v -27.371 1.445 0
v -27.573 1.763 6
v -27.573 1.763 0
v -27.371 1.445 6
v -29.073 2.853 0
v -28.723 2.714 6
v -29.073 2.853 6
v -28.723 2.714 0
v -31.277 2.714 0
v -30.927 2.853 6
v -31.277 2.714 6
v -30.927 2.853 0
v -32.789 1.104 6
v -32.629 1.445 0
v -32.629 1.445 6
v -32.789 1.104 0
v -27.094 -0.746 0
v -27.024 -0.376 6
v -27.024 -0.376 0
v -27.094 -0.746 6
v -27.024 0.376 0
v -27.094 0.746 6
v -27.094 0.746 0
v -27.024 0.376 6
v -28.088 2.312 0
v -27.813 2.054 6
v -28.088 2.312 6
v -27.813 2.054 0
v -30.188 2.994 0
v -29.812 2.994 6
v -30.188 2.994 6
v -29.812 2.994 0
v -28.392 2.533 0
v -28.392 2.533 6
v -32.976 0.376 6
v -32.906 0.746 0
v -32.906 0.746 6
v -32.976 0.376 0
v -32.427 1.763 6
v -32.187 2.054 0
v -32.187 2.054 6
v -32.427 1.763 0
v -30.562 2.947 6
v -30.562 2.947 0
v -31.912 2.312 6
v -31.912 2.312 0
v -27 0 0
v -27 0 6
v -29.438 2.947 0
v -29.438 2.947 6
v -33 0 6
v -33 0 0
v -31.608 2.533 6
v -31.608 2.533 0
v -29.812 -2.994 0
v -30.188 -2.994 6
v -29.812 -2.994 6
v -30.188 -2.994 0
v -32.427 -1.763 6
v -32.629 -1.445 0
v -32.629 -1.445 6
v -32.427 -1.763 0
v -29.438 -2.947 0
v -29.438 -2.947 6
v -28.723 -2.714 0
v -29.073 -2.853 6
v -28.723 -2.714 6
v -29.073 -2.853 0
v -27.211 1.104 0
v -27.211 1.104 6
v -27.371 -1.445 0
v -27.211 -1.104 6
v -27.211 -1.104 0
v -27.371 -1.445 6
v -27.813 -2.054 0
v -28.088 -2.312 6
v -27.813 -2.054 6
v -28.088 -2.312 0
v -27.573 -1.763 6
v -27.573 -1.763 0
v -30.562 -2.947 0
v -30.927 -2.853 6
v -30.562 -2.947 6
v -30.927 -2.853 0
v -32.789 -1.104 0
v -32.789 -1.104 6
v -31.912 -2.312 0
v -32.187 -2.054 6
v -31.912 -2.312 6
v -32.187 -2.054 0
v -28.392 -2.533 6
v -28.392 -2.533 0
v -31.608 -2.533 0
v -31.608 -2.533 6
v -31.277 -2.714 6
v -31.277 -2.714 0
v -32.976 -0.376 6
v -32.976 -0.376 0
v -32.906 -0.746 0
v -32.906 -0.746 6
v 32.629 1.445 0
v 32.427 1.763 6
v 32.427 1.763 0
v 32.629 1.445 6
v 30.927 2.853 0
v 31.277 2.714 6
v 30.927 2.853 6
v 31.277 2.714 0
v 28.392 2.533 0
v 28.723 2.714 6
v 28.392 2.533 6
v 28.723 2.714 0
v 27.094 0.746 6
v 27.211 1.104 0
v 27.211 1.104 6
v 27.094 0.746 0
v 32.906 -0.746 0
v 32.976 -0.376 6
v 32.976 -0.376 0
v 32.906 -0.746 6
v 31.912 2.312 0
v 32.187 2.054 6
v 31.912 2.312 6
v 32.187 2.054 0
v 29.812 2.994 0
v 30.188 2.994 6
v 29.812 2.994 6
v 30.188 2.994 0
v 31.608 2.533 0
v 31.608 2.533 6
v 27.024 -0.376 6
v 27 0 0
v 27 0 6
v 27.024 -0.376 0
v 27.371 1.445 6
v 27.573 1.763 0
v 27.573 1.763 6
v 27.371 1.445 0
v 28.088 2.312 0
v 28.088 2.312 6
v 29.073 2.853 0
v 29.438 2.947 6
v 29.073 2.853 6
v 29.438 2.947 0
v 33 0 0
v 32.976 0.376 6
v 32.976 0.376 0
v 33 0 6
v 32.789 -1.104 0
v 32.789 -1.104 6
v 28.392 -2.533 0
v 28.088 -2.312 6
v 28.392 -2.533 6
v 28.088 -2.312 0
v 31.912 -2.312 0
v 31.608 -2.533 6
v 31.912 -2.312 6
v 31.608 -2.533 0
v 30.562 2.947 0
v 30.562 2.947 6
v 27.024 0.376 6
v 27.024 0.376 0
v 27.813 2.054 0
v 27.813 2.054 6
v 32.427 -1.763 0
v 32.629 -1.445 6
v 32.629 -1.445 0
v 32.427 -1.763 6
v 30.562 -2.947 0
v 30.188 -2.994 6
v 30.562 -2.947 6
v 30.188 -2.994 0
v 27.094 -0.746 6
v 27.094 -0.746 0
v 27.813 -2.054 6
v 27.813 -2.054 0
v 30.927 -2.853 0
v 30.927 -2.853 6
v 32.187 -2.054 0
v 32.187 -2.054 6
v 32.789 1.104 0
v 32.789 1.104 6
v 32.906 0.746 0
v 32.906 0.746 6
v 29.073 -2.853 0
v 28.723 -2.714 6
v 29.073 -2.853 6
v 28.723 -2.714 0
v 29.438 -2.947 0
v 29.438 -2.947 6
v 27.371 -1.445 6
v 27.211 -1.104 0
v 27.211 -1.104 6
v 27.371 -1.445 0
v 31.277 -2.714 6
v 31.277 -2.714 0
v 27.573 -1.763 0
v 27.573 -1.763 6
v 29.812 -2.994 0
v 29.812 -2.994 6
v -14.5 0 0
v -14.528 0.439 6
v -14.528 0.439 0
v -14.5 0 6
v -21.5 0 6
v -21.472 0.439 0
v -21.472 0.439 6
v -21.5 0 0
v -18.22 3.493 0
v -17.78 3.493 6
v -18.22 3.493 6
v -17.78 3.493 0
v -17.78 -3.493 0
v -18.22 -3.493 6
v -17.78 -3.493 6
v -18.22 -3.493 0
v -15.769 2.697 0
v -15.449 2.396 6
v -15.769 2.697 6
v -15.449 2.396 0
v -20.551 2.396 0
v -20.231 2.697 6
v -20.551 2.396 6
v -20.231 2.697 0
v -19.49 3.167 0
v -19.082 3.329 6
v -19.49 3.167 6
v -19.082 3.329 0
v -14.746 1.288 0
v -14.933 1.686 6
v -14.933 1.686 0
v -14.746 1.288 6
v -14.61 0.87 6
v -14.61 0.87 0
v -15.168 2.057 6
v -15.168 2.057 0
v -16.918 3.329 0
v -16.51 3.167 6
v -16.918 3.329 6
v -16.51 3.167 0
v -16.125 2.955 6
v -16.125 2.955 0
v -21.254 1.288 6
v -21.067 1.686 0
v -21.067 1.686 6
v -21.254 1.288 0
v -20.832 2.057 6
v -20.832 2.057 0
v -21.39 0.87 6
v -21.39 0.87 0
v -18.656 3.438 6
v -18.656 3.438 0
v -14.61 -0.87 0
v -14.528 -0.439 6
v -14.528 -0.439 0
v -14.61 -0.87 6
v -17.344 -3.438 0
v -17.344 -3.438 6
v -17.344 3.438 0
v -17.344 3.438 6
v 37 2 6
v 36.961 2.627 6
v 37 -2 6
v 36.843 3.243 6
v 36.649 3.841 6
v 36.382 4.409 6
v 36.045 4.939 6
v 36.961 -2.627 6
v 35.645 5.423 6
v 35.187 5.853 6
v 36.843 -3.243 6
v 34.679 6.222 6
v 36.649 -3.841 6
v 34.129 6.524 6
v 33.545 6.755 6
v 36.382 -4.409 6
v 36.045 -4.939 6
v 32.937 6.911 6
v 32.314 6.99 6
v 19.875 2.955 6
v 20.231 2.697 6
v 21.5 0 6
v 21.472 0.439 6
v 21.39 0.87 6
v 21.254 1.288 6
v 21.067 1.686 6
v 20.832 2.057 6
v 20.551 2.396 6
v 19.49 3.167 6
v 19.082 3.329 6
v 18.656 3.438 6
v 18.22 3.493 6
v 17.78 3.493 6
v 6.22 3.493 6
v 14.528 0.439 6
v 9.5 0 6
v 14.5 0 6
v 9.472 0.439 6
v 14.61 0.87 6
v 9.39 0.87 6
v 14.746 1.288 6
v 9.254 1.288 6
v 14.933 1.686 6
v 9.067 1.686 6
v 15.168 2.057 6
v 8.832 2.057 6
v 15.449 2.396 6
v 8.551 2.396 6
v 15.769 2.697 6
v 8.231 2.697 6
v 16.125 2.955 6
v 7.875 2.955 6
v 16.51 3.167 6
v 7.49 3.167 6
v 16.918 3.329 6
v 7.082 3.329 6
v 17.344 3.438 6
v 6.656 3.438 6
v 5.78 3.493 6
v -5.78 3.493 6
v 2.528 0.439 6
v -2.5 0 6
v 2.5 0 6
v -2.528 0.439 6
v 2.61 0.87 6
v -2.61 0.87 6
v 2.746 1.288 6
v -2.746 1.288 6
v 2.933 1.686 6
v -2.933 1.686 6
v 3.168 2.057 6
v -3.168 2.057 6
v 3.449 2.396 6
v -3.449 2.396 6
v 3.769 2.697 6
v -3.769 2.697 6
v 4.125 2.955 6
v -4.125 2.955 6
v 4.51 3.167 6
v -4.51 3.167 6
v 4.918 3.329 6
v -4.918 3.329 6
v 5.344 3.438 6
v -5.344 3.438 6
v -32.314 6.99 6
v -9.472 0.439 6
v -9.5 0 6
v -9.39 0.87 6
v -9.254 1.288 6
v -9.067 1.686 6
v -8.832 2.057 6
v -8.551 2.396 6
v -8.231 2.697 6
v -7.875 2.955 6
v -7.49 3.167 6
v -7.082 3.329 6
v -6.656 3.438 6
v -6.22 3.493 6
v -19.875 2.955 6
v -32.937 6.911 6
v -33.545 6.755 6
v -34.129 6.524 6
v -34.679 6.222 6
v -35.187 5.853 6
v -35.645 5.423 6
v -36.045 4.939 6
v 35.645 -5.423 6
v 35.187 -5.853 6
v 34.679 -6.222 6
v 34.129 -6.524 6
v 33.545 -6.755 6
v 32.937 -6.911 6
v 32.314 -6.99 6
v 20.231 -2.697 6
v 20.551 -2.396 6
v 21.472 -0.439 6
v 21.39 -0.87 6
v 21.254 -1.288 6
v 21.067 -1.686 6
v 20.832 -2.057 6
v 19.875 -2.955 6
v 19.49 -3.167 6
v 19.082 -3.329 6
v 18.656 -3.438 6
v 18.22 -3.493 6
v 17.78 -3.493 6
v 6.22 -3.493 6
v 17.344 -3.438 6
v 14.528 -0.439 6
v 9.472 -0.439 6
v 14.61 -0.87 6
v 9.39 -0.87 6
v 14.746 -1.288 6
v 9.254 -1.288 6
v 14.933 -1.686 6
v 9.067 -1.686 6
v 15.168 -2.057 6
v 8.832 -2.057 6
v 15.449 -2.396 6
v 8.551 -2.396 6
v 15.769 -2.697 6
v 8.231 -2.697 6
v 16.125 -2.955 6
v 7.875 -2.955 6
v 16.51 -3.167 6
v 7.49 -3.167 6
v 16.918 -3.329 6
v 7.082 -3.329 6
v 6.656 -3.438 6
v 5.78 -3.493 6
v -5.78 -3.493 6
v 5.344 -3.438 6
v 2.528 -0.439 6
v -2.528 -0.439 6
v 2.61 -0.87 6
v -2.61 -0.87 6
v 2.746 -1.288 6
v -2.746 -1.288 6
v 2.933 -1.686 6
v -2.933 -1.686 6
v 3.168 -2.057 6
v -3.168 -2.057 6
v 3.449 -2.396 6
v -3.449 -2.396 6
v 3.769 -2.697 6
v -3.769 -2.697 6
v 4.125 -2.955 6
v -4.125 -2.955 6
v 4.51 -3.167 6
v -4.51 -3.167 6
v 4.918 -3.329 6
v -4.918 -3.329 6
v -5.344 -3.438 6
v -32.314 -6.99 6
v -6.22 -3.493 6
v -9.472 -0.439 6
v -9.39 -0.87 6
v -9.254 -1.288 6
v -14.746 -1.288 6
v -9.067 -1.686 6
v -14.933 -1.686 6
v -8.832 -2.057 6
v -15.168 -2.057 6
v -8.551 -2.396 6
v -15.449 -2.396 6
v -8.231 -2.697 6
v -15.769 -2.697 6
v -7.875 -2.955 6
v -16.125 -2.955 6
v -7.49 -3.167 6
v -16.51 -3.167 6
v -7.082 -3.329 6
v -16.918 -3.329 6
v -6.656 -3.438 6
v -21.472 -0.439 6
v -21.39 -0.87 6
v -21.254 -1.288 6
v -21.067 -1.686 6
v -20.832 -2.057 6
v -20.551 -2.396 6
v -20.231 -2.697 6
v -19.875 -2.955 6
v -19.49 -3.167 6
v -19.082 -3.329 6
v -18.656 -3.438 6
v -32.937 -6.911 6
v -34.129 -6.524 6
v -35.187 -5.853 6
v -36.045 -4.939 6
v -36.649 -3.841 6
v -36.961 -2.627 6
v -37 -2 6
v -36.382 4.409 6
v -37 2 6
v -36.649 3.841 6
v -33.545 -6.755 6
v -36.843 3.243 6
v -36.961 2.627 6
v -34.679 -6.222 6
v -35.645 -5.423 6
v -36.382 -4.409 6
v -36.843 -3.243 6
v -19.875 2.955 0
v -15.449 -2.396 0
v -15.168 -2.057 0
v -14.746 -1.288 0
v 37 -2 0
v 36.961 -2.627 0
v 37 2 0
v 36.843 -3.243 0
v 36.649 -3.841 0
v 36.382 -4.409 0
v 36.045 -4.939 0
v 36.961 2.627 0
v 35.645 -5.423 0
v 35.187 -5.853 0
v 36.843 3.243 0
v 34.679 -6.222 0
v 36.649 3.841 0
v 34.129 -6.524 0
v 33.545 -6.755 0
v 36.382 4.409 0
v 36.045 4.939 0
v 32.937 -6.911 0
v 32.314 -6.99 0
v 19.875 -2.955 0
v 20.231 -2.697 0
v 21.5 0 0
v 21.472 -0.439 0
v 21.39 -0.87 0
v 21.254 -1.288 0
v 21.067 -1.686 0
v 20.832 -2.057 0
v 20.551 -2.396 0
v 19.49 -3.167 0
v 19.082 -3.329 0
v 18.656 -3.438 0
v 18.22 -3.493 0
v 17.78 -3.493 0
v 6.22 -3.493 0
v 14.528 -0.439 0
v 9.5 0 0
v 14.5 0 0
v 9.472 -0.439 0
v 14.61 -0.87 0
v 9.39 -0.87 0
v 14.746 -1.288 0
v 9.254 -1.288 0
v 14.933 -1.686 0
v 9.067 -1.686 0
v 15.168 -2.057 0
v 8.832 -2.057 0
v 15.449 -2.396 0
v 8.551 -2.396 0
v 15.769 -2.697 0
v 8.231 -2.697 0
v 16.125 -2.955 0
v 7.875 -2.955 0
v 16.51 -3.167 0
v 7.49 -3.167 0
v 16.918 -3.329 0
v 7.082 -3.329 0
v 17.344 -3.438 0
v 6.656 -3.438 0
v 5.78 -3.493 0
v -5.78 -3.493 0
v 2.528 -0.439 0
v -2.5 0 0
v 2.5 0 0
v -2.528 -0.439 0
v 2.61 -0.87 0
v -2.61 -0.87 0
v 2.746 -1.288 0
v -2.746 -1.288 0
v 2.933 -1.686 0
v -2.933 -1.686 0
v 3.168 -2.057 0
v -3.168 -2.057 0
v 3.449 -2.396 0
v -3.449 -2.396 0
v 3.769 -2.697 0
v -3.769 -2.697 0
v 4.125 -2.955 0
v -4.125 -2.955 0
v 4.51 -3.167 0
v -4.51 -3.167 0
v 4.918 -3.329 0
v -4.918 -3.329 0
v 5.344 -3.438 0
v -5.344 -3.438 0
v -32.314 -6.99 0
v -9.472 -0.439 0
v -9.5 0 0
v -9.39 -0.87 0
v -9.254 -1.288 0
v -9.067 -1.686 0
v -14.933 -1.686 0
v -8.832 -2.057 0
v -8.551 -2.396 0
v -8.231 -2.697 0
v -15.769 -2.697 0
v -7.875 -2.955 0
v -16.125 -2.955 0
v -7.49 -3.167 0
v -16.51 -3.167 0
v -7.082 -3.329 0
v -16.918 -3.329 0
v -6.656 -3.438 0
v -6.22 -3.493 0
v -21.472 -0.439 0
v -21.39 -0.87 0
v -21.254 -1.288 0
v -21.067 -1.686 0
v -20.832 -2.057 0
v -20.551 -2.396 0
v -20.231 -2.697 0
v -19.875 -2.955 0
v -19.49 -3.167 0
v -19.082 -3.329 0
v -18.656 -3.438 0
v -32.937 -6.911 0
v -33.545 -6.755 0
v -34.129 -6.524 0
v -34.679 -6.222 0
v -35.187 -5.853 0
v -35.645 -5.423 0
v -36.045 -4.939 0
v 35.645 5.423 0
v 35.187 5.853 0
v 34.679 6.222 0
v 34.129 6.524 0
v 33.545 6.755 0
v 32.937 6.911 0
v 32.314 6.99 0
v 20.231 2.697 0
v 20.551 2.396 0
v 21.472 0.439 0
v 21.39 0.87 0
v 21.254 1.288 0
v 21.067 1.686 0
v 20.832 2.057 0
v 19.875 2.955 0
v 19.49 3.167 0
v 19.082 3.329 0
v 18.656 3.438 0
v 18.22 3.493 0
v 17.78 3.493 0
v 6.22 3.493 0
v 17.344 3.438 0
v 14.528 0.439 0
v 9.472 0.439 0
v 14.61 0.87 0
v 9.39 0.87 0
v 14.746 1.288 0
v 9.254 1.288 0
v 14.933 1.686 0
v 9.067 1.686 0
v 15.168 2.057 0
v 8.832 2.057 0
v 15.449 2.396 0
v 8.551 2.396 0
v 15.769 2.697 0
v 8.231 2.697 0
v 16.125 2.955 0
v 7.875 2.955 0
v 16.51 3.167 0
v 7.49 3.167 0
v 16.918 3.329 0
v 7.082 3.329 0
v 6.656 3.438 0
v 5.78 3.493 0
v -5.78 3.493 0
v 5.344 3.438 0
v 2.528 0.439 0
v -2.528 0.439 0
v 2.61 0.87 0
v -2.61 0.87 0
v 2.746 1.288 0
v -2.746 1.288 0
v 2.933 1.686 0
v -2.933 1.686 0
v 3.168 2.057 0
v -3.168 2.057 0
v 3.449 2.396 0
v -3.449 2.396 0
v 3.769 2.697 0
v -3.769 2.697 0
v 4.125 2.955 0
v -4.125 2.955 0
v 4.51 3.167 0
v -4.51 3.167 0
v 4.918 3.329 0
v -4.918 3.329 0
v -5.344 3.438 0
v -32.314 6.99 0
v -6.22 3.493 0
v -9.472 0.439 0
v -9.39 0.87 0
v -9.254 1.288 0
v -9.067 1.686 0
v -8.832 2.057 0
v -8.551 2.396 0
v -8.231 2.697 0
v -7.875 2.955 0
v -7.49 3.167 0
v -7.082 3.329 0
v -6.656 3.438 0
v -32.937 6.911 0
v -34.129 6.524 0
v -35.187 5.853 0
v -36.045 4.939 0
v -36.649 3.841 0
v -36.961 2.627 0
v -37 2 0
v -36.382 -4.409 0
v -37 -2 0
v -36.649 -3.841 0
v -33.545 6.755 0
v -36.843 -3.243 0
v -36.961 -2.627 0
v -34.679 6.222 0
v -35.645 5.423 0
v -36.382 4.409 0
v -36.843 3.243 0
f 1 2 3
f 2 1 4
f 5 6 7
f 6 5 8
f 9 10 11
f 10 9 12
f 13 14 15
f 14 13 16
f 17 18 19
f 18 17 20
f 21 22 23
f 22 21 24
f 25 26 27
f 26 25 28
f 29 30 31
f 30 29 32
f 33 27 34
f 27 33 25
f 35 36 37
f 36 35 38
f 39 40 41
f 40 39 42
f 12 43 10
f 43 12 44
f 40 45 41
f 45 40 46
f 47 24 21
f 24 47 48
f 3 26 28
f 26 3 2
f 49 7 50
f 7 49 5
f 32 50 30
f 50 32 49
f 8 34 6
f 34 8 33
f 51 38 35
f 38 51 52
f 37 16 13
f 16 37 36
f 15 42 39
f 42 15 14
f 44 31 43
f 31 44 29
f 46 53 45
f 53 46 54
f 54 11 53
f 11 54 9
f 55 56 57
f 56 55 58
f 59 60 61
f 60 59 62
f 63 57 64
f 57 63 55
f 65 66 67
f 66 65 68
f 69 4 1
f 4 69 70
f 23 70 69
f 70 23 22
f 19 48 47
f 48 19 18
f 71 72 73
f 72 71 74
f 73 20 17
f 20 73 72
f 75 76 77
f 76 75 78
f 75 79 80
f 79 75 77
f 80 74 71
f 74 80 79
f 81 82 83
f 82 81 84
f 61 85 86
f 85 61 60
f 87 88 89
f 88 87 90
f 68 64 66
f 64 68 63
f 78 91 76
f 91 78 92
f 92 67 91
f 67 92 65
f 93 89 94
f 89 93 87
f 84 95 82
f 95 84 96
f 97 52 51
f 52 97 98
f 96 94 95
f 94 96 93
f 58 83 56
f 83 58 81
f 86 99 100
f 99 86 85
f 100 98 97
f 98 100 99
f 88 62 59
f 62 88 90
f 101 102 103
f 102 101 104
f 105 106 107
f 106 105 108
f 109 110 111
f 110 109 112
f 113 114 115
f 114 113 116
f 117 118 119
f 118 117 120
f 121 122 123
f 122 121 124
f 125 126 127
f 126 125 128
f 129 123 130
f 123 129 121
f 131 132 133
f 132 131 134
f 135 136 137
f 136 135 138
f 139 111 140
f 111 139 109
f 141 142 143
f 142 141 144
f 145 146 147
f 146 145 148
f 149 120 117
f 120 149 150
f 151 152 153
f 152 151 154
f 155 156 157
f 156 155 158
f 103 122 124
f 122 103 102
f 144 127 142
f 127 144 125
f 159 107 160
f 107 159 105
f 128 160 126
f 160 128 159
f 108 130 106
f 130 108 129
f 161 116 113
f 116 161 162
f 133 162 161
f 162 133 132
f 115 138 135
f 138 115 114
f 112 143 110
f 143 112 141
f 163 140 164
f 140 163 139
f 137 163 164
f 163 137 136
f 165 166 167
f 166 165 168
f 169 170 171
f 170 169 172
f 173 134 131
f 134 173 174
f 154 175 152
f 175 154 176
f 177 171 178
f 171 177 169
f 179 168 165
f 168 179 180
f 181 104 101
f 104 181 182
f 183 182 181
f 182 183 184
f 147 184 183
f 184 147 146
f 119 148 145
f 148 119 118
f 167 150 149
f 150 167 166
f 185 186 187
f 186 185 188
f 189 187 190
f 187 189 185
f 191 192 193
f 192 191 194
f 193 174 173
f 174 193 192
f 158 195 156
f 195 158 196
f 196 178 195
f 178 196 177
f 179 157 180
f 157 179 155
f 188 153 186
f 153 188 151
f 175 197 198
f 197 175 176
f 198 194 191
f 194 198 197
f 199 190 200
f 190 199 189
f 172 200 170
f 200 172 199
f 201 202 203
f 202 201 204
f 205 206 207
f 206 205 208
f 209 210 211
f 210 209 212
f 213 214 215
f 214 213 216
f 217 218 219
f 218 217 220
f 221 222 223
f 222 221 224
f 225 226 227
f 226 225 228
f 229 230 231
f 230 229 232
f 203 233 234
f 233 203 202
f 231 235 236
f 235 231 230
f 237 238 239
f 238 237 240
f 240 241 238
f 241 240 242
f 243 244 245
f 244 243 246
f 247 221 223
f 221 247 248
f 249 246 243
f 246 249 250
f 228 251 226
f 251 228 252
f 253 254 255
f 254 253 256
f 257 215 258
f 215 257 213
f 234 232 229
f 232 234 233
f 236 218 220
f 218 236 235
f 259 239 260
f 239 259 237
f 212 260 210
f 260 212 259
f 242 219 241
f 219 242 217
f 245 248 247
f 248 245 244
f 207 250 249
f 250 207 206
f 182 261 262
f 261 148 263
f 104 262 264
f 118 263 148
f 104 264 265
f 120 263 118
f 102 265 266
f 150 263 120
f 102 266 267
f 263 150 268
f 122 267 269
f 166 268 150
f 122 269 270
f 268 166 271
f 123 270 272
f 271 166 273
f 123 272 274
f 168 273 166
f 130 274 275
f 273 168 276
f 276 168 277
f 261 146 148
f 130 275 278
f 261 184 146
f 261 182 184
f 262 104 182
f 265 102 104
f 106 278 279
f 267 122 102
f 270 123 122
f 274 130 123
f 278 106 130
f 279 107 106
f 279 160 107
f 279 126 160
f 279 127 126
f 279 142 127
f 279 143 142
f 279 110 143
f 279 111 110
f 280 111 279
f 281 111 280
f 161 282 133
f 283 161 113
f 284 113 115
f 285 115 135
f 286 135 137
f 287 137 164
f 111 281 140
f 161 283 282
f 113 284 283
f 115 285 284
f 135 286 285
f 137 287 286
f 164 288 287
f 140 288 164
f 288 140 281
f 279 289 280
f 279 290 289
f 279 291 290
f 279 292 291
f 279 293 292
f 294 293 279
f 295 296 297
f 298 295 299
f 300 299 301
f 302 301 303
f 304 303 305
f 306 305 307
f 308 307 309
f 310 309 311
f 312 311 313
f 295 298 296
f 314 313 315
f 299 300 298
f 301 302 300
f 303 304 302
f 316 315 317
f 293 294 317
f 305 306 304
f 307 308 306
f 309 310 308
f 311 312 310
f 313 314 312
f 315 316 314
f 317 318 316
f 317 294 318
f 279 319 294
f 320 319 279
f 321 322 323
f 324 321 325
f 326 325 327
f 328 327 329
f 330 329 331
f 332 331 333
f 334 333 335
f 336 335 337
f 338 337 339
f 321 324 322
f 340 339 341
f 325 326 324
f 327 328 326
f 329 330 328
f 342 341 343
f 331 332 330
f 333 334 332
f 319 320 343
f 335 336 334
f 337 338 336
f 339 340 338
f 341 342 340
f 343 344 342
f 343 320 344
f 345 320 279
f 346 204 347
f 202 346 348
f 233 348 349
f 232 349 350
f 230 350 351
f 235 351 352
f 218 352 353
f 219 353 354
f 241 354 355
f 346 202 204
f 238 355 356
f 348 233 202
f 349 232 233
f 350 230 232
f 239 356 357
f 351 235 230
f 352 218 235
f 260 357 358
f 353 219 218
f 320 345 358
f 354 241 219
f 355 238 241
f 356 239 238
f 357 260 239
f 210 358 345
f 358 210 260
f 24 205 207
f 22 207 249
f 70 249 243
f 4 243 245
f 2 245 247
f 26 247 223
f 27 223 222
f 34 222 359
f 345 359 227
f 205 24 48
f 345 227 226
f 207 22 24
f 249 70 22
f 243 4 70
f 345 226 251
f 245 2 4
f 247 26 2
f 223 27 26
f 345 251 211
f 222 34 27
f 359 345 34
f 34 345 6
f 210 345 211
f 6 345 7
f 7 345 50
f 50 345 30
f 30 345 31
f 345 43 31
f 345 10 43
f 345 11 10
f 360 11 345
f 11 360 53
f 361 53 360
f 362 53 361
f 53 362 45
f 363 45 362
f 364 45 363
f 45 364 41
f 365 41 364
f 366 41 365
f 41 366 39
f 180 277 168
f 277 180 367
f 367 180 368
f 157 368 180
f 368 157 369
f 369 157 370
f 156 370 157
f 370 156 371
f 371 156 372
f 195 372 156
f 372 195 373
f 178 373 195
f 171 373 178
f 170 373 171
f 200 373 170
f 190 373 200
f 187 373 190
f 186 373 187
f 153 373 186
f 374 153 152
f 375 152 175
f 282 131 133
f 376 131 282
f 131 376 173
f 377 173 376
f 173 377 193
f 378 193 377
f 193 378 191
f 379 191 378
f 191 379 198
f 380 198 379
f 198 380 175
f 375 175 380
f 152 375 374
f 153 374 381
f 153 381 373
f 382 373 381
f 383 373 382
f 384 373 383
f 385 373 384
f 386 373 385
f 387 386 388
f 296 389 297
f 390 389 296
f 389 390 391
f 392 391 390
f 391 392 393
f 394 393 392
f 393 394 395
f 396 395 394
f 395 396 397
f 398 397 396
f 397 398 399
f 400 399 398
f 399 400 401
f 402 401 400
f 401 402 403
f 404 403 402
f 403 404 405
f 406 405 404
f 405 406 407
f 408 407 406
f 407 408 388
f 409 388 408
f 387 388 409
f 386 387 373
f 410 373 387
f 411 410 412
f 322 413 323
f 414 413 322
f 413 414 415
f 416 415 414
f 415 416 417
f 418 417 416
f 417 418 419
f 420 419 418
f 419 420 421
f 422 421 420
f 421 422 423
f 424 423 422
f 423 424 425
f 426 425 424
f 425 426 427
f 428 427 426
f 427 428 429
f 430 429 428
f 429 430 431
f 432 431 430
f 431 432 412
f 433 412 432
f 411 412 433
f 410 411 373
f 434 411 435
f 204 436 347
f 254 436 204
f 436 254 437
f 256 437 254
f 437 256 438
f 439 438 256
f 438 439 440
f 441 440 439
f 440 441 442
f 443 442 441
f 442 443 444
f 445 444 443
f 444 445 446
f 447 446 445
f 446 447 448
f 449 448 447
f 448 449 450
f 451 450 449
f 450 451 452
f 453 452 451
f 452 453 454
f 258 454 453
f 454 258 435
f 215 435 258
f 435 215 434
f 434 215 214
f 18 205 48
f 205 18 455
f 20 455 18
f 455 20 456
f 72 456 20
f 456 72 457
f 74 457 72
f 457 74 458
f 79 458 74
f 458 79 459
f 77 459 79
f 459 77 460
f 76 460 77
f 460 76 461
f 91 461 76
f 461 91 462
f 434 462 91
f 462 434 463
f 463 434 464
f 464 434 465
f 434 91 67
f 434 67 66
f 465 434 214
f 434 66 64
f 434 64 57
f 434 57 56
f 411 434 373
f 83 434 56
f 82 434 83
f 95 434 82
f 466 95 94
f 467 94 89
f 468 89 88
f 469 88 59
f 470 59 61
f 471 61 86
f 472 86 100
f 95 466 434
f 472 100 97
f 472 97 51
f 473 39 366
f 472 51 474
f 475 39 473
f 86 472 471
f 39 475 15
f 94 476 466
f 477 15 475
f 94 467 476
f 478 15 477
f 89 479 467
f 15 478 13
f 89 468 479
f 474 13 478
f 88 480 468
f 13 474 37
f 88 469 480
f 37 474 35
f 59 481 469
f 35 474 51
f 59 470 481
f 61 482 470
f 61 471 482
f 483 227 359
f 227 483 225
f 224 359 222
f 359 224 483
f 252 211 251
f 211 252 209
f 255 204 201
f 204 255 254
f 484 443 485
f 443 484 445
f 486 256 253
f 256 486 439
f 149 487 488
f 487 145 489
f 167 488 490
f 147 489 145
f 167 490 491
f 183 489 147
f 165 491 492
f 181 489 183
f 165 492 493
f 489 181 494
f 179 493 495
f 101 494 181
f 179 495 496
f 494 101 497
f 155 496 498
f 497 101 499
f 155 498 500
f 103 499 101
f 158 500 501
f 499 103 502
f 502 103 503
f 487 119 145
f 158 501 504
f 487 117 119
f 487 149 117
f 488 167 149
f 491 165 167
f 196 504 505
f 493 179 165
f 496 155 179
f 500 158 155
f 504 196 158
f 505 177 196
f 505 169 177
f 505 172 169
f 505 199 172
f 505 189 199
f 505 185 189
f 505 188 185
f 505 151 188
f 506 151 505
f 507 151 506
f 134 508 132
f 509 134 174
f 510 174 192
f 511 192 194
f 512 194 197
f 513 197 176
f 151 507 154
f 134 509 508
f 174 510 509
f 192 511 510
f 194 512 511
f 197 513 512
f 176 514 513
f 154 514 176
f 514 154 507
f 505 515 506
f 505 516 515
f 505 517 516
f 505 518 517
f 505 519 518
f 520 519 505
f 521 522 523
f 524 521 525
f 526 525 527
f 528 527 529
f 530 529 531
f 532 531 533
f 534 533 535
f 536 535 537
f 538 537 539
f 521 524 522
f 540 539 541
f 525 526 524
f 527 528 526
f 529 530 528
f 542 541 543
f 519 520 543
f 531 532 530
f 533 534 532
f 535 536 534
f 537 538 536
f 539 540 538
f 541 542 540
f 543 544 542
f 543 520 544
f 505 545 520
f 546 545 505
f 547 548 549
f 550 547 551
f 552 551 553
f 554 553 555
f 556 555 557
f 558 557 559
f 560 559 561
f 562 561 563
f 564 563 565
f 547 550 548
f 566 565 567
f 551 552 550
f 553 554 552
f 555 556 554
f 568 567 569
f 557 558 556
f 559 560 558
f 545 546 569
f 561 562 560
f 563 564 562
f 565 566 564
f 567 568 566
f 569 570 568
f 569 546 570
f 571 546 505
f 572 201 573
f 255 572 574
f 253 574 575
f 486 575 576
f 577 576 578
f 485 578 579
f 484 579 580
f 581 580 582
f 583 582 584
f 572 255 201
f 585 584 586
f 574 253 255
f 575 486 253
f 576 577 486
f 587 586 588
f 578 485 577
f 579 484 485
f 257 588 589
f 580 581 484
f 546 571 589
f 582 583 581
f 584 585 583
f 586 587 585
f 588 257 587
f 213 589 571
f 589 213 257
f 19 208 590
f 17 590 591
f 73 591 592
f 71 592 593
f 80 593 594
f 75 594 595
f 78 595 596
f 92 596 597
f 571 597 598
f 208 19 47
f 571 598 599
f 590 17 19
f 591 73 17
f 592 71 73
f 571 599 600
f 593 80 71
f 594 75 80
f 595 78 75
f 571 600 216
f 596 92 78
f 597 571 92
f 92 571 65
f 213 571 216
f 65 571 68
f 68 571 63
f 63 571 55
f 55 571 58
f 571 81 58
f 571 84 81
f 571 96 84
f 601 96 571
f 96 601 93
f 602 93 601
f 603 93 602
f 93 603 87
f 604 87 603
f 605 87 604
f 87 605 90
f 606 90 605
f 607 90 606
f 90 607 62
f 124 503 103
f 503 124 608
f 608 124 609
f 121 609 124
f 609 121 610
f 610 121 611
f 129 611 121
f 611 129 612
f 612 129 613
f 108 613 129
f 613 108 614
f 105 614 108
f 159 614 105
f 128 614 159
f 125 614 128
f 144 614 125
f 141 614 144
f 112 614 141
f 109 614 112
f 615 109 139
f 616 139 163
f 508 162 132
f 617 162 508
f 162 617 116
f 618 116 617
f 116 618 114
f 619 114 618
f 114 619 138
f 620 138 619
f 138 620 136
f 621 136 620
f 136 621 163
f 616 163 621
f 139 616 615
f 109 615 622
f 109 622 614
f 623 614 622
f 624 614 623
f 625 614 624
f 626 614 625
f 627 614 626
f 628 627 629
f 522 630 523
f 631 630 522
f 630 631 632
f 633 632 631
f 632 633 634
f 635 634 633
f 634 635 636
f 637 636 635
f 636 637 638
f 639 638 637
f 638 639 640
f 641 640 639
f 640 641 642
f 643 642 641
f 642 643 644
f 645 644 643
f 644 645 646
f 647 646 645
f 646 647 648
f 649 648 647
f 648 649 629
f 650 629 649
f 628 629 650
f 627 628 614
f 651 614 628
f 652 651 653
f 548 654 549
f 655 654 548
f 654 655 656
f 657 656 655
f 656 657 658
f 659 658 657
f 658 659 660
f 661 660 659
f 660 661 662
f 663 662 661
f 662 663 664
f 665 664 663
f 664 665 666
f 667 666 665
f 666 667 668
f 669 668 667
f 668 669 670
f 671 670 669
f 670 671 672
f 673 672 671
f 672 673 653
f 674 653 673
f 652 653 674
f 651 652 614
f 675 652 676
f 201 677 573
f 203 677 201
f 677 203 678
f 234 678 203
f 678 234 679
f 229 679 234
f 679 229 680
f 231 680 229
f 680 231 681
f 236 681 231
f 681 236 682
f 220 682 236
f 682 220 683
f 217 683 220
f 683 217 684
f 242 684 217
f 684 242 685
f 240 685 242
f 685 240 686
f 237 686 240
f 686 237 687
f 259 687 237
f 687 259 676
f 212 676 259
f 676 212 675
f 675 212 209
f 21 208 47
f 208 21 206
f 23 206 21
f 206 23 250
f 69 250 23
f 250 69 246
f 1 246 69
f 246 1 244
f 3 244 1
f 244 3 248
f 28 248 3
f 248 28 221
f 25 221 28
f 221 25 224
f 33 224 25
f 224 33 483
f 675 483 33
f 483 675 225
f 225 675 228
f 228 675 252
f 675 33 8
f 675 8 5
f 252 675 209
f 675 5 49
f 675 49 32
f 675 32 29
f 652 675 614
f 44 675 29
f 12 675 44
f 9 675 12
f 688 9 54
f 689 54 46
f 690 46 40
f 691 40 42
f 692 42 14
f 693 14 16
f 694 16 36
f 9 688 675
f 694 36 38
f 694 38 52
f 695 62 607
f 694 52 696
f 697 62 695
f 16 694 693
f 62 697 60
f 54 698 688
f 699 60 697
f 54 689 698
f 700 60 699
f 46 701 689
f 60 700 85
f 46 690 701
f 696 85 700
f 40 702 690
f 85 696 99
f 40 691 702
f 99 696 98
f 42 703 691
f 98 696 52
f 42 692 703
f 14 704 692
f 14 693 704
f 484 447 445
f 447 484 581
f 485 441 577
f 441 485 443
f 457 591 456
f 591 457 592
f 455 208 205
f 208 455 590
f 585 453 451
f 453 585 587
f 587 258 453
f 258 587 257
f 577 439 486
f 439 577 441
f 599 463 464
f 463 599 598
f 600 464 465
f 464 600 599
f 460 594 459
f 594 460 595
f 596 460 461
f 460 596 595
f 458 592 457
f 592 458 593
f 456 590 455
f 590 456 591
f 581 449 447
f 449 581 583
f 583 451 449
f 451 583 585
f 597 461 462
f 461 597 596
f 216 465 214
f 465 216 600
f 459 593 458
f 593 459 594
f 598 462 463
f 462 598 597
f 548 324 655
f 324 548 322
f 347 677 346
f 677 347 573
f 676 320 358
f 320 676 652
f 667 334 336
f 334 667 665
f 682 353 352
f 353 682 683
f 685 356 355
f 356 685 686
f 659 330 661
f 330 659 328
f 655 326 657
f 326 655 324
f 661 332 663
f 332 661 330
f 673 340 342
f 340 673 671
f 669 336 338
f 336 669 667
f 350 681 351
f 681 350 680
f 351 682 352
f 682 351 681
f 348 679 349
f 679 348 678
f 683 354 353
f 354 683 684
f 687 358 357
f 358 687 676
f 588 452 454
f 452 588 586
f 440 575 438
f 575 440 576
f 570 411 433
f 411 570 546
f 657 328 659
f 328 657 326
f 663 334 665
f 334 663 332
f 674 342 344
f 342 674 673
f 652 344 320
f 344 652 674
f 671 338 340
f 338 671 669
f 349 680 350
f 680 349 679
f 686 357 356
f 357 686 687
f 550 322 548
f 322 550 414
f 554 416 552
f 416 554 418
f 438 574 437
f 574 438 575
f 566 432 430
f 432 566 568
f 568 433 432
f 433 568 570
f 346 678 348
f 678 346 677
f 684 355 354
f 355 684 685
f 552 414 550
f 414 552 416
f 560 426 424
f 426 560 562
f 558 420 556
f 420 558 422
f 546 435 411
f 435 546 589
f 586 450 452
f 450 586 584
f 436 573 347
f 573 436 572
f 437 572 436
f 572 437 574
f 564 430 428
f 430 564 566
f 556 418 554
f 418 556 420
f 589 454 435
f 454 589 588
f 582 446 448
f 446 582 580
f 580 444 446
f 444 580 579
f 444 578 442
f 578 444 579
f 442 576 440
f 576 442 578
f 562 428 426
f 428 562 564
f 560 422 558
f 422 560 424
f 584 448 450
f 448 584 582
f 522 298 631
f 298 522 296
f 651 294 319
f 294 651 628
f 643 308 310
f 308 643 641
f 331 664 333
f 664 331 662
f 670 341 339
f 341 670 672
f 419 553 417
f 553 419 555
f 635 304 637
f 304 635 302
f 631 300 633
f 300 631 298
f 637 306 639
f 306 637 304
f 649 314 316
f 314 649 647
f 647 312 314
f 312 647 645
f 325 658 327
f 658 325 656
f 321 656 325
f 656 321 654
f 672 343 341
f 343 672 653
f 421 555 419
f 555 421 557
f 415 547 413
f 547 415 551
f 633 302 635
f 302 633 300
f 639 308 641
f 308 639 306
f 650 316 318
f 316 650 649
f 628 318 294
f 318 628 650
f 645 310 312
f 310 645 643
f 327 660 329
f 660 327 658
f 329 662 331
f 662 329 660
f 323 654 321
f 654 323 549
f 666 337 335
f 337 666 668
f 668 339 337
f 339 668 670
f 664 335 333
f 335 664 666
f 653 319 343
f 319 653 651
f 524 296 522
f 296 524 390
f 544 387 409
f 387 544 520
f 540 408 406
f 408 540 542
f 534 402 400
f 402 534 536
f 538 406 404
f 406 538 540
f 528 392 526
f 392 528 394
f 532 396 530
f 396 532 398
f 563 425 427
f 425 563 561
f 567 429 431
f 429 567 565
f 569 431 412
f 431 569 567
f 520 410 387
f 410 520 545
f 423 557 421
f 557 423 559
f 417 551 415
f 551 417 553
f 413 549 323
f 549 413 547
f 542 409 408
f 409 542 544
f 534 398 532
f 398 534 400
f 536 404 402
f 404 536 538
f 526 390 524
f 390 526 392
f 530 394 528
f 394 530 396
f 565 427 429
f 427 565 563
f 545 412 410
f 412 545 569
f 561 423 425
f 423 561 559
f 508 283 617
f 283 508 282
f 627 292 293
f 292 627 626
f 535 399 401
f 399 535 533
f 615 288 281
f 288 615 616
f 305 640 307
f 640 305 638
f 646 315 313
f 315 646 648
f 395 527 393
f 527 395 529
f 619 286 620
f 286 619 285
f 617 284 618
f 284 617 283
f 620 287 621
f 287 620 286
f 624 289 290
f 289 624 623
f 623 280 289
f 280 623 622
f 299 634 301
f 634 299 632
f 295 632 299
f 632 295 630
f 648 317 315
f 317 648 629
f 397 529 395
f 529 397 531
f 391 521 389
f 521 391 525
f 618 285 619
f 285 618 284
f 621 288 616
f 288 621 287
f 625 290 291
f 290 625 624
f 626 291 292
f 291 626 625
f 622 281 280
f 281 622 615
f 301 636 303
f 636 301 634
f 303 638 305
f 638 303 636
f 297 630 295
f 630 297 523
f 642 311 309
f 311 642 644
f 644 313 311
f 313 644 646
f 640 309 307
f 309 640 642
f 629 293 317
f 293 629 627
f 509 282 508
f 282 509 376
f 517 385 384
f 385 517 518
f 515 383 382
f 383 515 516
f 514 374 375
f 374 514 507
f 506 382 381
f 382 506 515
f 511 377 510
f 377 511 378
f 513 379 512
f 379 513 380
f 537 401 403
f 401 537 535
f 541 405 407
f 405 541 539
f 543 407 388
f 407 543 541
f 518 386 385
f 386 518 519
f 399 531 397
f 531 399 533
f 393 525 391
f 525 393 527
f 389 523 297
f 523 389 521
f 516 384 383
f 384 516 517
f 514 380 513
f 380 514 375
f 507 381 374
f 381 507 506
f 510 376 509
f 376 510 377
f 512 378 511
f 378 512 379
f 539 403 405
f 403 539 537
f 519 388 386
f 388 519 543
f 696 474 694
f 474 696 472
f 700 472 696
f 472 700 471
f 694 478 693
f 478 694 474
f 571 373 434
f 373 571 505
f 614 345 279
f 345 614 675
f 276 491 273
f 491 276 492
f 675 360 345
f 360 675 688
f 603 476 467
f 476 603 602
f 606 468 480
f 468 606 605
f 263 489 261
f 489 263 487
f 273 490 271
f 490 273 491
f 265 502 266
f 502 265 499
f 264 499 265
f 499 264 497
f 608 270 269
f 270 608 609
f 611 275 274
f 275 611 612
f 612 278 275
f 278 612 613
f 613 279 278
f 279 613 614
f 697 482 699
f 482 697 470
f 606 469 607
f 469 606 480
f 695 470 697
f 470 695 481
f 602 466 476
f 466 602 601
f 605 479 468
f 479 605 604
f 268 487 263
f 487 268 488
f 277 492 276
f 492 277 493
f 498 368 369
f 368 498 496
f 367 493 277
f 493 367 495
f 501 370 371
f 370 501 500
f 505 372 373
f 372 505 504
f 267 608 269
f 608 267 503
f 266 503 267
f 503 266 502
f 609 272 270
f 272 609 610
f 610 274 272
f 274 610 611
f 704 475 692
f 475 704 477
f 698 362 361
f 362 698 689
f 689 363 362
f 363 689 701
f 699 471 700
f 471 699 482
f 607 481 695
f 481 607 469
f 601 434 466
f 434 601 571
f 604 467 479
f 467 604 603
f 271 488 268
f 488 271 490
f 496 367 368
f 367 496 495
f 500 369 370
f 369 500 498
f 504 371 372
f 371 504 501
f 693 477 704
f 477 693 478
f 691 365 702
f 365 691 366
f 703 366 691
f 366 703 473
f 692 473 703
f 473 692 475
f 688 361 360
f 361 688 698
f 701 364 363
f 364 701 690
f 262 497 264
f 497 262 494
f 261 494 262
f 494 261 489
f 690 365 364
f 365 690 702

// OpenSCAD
$fn = 50;


difference() {
	union() {
		hull() {
			translate(v = [-32.0000000000, 2.0000000000, 0]) {
				cylinder(h = 6, r = 5);
			}
			translate(v = [32.0000000000, 2.0000000000, 0]) {
				cylinder(h = 6, r = 5);
			}
			translate(v = [-32.0000000000, -2.0000000000, 0]) {
				cylinder(h = 6, r = 5);
			}
			translate(v = [32.0000000000, -2.0000000000, 0]) {
				cylinder(h = 6, r = 5);
			}
		}
	}
	union() {
		#translate(v = [-30.0000000000, 0.0000000000, 0]) {
			cylinder(h = 6, r = 3.0000000000);
		}
		#translate(v = [30.0000000000, 0.0000000000, 0]) {
			cylinder(h = 6, r = 3.0000000000);
		}
		#translate(v = [-30.0000000000, 0.0000000000, -100.0000000000]) {
			cylinder(h = 200, r = 3.0000000000);
		}
		#translate(v = [-30.0000000000, 0.0000000000, -100.0000000000]) {
			cylinder(h = 200, r = 3.0000000000);
		}
		#translate(v = [30.0000000000, 0.0000000000, -100.0000000000]) {
			cylinder(h = 200, r = 3.0000000000);
		}
		#translate(v = [30.0000000000, 0.0000000000, -100.0000000000]) {
			cylinder(h = 200, r = 3.0000000000);
		}
		#translate(v = [-30.0000000000, 0.0000000000, 0]) {
			cylinder(h = 6, r = 1.5000000000);
		}
		#translate(v = [30.0000000000, 0.0000000000, 0]) {
			cylinder(h = 6, r = 1.5000000000);
		}
		#translate(v = [-30.0000000000, 0.0000000000, 0]) {
			cylinder(h = 6, r = 1.5000000000);
		}
		#translate(v = [30.0000000000, 0.0000000000, 0]) {
			cylinder(h = 6, r = 1.5000000000);
		}
		#translate(v = [-30.0000000000, 0.0000000000, 0]) {
			cylinder(h = 6, r = 1.5000000000);
		}
		#translate(v = [30.0000000000, 0.0000000000, 0]) {
			cylinder(h = 6, r = 1.5000000000);
		}
		#translate(v = [-18.0000000000, 0, 0]) {
			cylinder(h = 6, r = 3.5000000000);
		}
		#translate(v = [-6.0000000000, 0, 0]) {
			cylinder(h = 6, r = 3.5000000000);
		}
		#translate(v = [6.0000000000, 0, 0]) {
			cylinder(h = 6, r = 3.5000000000);
		}
		#translate(v = [18.0000000000, 0, 0]) {
			cylinder(h = 6, r = 3.5000000000);
		}
	}
}
